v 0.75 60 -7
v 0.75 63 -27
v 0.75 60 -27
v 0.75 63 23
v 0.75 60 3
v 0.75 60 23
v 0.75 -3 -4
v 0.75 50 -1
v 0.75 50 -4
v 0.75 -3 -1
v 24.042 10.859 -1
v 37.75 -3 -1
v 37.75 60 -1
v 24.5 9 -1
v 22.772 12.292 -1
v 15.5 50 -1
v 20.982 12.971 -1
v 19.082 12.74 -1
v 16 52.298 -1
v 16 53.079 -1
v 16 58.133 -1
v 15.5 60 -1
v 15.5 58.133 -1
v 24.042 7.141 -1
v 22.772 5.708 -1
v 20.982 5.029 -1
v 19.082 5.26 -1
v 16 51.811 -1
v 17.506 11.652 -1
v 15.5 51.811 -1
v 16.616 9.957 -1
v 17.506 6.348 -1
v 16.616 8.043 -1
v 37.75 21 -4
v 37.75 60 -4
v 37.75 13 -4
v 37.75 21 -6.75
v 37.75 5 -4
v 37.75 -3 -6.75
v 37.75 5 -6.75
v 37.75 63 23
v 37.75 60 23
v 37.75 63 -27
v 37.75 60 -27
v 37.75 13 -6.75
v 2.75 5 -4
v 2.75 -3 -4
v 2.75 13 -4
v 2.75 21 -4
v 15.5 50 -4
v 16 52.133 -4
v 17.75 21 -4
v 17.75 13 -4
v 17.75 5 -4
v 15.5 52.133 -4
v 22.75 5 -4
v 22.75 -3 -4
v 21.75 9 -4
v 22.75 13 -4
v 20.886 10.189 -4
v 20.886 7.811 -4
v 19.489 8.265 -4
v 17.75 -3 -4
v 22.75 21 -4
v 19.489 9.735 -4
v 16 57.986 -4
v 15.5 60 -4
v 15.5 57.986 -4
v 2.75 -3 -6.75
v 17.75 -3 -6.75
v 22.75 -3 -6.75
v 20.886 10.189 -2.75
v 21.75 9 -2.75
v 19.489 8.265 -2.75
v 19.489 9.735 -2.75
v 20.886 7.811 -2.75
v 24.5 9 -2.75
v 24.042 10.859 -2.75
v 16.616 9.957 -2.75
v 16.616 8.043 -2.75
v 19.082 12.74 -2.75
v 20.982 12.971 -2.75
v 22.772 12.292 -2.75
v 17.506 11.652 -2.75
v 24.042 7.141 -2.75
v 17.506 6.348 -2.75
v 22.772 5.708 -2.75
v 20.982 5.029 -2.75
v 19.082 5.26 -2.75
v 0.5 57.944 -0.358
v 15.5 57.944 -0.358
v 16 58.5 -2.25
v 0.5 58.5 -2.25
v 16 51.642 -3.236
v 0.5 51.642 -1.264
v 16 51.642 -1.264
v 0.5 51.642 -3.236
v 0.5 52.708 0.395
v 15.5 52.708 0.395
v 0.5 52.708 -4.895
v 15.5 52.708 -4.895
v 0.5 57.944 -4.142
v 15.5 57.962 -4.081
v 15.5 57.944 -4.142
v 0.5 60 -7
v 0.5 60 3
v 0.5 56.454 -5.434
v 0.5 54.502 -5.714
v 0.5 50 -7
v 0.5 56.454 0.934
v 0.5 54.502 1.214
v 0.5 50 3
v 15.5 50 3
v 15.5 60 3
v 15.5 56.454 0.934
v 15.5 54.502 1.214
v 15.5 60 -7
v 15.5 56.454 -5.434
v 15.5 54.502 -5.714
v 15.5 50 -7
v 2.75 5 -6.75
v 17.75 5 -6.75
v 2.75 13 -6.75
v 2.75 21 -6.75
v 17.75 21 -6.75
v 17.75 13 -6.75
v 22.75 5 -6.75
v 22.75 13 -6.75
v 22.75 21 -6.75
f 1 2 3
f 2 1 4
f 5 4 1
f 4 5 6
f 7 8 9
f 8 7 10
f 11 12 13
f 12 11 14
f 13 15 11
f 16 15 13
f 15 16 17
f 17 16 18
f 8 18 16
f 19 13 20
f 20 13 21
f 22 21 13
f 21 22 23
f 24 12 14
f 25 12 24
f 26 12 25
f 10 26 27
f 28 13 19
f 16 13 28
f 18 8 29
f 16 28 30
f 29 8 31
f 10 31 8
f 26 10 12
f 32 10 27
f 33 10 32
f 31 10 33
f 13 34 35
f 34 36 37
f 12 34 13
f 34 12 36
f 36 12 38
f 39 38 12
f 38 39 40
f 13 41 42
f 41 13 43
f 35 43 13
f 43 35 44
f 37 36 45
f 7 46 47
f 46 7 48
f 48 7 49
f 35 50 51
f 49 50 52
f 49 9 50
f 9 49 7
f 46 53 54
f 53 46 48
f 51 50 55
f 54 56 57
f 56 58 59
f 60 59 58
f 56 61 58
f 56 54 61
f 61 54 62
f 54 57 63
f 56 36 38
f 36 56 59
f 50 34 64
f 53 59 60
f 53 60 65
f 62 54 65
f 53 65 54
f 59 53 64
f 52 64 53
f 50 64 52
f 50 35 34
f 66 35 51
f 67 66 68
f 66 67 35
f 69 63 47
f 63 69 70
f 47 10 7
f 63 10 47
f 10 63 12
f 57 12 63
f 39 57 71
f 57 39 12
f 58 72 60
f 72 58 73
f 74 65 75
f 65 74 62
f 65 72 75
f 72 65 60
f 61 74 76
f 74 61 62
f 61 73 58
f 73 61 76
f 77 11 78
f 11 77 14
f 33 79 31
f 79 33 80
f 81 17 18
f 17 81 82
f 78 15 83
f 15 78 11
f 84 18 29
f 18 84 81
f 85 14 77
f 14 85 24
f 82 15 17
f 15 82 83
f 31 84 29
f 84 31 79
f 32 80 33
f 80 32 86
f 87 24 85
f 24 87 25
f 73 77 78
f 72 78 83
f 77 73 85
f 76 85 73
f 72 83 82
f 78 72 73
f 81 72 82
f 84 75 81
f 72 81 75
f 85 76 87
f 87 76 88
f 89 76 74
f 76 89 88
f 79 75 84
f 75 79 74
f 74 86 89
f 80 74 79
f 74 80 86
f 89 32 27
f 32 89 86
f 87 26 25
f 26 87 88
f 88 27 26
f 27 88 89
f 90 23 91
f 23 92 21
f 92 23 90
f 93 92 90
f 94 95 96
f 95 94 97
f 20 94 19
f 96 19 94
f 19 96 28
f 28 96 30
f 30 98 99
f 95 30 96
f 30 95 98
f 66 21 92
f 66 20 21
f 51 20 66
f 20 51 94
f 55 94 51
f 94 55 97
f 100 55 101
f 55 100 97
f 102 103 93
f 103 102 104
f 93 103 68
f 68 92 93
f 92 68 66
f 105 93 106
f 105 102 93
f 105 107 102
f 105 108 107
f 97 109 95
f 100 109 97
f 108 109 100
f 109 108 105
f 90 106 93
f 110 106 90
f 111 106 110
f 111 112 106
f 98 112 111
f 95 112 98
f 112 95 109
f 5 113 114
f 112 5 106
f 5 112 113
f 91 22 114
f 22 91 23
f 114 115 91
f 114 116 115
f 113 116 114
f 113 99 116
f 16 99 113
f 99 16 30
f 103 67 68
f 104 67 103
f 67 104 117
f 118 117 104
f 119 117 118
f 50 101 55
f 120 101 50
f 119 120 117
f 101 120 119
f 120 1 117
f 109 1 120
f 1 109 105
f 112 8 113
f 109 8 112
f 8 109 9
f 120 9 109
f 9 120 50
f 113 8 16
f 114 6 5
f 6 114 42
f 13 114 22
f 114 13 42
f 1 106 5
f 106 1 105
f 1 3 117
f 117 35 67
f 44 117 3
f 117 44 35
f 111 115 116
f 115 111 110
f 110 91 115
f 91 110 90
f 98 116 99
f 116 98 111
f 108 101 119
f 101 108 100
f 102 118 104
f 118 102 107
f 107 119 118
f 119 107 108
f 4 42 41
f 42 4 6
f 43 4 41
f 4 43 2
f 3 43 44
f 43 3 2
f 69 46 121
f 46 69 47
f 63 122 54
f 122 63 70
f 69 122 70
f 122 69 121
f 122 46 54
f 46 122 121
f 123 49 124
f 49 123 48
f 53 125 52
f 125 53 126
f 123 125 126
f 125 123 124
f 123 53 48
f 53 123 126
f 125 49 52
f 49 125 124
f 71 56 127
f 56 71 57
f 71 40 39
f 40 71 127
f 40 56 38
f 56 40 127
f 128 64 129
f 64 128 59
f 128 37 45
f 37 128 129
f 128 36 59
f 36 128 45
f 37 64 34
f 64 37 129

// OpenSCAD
difference()
{
translate([0.75,-3,-4])
{
    cube([37,64,3]);
}

translate([20.5,9,-4.5])
{
cylinder(2,1.25,1.25);
}

translate([20.5,9,-2.75])
{
cylinder(3,4,4);
}

translate([0.5,55,-2.25])
{
    rotate([90,0,90])
    {
    cylinder(15.5,3.5,3.5);
    }
}

}


translate([0.75,60,-27])
{
    cube([37,3,50]);
}

difference()
{
translate([0.5,50,-7])
{
    cube([15,10,10]);
}

translate([0.5,55,-2.25])
{
    rotate([90,0,90])
    {
    cylinder(15.5,3.5,3.5);
    }
}


}

translate([2.75,-3,-6.75])
{
cube([15,8,2.75]);
}

translate([2.75,13,-6.75])
{
cube([15,8,2.75]);
}

translate([22.75,-3,-6.75])
{
cube([15,8,2.75]);
}

translate([22.75,13,-6.75])
{
cube([15,8,2.75]);
}


translate([0,0,14])
{
    rotate([-90,0,0])
    {
    //import("servo.stl");
    }
}
